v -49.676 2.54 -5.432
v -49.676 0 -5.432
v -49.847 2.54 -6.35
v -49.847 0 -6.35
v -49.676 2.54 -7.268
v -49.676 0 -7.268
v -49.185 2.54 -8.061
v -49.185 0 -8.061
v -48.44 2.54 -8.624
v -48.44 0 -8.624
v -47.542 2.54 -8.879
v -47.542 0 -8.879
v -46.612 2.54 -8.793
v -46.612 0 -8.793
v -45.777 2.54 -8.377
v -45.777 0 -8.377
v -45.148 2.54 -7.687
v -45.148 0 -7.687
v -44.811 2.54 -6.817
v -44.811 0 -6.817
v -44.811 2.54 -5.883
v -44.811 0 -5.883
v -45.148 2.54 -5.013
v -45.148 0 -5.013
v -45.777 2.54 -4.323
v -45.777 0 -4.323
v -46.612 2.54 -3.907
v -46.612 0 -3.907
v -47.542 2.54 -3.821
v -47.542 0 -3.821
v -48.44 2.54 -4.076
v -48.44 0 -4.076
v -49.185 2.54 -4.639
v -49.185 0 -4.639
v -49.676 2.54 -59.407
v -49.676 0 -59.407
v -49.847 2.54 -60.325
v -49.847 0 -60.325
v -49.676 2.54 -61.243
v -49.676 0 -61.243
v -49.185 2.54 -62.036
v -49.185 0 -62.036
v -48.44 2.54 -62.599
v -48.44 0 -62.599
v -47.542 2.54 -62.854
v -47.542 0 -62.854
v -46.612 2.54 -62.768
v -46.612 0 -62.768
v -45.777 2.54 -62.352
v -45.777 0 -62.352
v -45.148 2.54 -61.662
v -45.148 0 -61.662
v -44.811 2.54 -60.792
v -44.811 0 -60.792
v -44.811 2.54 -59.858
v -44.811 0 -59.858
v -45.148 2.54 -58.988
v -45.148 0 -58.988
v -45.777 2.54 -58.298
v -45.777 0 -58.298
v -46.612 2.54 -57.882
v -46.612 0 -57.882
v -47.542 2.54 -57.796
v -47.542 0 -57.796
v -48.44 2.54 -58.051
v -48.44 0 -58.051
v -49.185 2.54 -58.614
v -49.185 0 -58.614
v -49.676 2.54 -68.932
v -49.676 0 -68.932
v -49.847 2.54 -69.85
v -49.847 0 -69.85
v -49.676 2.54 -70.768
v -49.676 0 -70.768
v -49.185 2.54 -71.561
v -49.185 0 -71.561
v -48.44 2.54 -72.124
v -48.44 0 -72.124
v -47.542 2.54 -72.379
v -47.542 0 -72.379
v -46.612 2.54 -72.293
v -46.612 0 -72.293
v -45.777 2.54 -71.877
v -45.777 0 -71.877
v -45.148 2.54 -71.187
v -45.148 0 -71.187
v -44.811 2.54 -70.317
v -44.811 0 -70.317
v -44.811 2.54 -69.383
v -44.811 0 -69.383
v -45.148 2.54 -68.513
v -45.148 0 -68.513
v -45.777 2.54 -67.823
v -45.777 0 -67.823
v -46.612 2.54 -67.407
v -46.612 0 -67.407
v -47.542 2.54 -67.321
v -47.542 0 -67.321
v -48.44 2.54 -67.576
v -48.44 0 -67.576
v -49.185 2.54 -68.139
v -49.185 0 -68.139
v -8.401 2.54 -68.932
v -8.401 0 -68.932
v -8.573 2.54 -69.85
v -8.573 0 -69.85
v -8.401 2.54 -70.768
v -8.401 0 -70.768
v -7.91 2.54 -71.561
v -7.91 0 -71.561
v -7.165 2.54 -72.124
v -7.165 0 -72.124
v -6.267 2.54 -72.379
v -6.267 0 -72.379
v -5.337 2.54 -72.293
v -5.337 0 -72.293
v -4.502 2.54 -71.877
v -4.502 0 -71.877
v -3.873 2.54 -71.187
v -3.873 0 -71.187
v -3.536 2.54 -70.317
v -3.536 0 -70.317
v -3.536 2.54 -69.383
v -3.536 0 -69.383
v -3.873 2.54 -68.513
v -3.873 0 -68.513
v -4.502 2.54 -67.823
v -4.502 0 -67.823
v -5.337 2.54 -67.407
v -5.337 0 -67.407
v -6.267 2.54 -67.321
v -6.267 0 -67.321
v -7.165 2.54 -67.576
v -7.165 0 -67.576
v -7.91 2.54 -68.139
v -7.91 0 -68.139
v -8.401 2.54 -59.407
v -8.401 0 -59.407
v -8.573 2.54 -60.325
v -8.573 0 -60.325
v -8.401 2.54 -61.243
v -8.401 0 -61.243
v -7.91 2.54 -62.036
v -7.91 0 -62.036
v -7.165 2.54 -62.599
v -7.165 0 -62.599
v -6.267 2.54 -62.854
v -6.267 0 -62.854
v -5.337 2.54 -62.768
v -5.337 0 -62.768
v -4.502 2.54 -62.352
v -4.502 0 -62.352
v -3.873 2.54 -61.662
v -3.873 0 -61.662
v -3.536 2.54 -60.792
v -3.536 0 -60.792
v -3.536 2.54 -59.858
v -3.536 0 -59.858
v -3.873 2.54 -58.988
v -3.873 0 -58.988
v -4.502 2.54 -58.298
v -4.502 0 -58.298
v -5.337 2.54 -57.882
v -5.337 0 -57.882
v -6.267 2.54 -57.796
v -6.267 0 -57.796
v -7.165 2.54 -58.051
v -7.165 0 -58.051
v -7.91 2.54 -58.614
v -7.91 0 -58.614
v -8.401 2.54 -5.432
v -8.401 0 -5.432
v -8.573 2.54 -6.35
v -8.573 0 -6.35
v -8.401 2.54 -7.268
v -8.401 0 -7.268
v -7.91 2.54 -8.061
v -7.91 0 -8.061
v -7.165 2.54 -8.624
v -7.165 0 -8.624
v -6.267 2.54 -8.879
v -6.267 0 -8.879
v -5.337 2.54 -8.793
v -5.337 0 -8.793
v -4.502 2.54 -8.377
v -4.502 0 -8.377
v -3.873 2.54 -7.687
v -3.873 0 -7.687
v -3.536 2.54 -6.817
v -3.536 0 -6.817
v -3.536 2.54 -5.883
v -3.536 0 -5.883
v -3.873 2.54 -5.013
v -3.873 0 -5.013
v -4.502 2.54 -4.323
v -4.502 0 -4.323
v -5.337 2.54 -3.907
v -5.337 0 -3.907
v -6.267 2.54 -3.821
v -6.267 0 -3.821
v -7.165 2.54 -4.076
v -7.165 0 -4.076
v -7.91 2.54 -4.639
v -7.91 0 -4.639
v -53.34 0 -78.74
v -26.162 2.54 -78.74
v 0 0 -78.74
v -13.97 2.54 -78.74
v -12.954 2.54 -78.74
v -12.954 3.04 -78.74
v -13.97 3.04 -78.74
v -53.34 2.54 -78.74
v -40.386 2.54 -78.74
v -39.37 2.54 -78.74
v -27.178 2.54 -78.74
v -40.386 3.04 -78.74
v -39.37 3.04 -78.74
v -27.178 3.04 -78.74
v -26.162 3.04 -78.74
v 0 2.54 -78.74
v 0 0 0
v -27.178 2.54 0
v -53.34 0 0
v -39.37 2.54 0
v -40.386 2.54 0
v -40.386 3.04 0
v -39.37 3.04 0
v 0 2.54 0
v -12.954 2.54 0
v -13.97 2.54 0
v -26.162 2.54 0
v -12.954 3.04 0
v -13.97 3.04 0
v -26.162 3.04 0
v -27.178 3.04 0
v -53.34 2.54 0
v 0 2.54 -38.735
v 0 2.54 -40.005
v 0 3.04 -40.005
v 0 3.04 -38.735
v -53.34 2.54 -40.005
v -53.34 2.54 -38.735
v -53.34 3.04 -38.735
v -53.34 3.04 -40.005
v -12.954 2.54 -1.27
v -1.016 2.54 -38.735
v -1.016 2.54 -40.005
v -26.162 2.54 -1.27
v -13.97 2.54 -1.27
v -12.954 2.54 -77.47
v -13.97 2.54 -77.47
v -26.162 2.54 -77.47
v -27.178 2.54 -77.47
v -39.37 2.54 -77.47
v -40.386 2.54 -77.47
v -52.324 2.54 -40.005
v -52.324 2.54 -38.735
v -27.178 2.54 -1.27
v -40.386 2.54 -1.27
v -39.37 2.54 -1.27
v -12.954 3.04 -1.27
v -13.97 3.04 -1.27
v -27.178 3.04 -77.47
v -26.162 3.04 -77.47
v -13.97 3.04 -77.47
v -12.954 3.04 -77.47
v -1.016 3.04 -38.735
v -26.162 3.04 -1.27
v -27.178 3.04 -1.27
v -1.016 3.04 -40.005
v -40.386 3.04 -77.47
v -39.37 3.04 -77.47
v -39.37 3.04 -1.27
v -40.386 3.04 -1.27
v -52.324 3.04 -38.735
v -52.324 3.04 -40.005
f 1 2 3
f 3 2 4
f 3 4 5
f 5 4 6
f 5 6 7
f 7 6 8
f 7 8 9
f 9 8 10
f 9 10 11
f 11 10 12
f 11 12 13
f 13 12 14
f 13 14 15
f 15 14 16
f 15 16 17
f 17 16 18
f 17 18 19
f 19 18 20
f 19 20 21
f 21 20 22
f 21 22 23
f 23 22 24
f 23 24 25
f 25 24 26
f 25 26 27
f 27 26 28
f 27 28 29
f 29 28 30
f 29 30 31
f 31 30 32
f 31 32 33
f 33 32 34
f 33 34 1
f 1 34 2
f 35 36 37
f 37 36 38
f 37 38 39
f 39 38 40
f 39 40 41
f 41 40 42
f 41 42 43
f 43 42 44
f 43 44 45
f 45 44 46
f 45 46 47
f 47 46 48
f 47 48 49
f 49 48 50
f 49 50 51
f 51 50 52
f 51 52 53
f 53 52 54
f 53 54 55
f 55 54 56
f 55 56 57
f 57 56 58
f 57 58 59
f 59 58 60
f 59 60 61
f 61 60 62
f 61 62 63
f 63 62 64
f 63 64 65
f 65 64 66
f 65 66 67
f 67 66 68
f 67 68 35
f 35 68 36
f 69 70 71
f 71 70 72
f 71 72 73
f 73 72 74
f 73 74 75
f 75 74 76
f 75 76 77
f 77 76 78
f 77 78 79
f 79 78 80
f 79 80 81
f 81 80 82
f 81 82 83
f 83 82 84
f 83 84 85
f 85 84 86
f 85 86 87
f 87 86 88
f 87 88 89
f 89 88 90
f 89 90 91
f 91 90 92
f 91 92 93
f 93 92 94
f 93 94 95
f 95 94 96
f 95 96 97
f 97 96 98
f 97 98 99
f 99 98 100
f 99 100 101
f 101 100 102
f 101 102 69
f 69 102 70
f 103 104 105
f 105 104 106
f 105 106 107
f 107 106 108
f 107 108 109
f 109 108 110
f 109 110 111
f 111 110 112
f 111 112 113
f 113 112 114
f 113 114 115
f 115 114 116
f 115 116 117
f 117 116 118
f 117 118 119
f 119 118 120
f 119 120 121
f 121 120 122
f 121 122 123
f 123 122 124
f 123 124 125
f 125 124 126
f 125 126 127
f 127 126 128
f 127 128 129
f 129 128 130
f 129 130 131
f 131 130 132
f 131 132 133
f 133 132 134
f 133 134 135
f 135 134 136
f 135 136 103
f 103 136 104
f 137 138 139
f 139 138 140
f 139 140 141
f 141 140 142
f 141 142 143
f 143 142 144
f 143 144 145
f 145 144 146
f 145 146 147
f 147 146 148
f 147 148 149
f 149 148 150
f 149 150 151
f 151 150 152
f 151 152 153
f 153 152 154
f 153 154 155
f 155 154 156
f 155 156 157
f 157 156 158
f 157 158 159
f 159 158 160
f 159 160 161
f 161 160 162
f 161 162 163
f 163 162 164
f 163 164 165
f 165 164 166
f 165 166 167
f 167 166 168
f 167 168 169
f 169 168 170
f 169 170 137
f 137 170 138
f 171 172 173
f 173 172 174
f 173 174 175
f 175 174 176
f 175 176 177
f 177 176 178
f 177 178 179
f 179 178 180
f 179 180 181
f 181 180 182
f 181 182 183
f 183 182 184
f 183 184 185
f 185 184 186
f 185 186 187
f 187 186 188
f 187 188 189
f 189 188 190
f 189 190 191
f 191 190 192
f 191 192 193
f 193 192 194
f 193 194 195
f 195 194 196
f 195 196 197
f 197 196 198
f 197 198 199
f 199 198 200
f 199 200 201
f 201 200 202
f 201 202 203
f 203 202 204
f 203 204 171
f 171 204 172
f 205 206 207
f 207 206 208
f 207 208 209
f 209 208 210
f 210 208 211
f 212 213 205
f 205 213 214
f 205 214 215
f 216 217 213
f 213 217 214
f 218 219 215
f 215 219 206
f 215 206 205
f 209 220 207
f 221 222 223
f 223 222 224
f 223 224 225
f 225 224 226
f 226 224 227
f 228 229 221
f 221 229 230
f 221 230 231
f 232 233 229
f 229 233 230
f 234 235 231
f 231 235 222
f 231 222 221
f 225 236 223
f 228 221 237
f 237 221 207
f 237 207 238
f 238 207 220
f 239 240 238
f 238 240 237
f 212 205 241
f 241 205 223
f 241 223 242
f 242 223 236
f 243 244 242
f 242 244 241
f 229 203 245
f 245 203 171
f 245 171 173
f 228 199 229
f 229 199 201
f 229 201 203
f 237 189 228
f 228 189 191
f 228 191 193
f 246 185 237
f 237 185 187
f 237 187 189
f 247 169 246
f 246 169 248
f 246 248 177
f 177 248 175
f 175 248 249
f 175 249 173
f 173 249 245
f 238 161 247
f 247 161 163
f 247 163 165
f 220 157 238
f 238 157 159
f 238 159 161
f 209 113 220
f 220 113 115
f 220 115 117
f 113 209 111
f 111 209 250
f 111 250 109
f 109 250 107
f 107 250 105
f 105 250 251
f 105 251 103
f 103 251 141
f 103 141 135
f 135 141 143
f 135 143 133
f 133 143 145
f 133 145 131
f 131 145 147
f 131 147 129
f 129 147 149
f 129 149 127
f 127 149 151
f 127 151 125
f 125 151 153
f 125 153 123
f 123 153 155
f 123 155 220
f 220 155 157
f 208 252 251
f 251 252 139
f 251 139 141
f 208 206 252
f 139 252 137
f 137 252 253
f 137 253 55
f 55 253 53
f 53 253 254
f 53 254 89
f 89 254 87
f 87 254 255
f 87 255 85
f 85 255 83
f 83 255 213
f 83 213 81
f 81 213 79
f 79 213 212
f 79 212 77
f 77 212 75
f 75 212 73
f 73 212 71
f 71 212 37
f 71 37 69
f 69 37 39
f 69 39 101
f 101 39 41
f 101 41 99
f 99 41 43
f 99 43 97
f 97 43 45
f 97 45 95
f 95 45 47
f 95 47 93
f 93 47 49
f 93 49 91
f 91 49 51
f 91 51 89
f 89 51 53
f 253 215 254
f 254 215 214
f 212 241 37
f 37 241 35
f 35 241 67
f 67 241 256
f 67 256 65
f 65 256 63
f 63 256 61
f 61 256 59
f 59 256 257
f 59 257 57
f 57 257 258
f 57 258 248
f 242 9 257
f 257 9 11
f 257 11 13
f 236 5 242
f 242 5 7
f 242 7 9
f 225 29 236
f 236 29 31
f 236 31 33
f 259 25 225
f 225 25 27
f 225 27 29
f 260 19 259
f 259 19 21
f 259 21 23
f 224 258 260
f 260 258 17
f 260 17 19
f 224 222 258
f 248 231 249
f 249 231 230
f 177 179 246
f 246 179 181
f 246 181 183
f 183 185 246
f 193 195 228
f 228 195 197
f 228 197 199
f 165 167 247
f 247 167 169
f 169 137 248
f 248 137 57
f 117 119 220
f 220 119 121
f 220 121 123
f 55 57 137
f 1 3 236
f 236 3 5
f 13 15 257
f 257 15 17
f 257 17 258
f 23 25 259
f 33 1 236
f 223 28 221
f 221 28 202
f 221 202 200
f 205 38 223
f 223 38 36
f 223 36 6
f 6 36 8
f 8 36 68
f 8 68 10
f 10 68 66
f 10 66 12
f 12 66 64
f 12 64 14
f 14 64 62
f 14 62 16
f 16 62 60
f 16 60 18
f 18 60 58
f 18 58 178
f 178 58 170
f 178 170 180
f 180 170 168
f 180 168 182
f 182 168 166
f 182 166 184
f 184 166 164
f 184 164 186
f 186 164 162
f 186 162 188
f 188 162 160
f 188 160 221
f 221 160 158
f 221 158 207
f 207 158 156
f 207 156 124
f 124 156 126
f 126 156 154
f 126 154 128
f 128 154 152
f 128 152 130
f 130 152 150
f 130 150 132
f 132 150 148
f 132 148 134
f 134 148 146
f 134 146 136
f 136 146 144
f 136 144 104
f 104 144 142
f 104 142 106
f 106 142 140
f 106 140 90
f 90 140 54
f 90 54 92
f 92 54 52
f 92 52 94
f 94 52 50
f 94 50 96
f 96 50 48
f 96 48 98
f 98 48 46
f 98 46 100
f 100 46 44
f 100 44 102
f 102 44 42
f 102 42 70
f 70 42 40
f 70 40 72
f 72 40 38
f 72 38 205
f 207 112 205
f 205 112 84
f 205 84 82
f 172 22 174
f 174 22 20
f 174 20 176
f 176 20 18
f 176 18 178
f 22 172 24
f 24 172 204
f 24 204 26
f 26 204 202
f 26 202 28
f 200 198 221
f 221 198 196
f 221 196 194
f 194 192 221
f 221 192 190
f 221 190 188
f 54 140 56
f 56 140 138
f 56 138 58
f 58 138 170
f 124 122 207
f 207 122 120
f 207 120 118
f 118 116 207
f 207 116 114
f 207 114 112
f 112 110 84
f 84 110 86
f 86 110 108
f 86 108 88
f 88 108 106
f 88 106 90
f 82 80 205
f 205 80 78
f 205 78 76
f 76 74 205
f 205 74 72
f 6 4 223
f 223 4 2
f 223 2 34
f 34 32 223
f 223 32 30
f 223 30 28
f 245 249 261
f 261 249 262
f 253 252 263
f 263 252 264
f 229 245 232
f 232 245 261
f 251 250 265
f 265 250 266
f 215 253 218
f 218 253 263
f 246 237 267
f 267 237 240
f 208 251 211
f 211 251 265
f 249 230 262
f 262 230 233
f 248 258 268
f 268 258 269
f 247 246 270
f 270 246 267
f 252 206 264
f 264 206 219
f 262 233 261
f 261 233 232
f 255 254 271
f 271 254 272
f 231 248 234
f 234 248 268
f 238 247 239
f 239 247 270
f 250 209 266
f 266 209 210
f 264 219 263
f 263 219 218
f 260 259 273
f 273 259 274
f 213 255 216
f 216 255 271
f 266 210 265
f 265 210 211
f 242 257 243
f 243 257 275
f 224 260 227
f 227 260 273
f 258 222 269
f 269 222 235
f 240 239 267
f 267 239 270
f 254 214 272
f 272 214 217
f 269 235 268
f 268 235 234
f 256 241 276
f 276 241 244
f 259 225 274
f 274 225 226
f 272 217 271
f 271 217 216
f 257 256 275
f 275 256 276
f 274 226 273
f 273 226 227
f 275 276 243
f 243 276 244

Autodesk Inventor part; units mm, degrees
ref_plane "YZ Plane" through (0, 0, 0) normal (1, 0, 0) x (0, 1, 0)
ref_plane "XZ Plane" through (0, 0, 0) normal (0, 1, 0) x (-1, 0, 0)
ref_plane "XY Plane" through (0, 0, 0) normal (0, 0, 1) x (1, 0, 0)
sketch "Sketch1" plane through (0, 0, 0) normal (0, 1, 0) x (-1, 0, 0)
  line L0 (0, 0) -> (53.34, 0)
  line L1 (53.34, 0) -> (53.34, -78.74)
  line L2 (53.34, -78.74) -> (0, -78.74)
  line L3 (0, -78.74) -> (0, 0)
  circle A0 centre (47.3075, -6.35) radius 2.54
  circle A1 centre (47.3075, -60.325) radius 2.54
  circle A2 centre (47.3075, -69.85) radius 2.54
  circle A3 centre (6.0325, -6.35) radius 2.54
  circle A4 centre (6.0325, -60.325) radius 2.54
  circle A5 centre (6.0325, -69.85) radius 2.54
  line L4 (26.67, 0) -> (26.67, -78.74)
  dimension "d0" = 53.34
  dimension "d1" = 78.74
  dimension "d2" = 5.08
  dimension "d3" = 5.08
  dimension "d4" = 5.08
  dimension "d5" = 53.975
  dimension "d6" = 63.5
  dimension "d9" = 41.275
  dimension "d14" = 20.6375
  dimension "d16" = 6.35
extrude "Extrusion1" add sketch "Sketch1" along normal blind 2.54
sketch "Sketch2" plane through (0, 2.54, 0) normal (0, 1, 0) x (1, 0, 0)
  line L0 (-53.34, 0) -> (0, 0) projected
  line L1 (-53.34, 78.74) -> (-53.34, 0) projected
  line L2 (0, 78.74) -> (-53.34, 78.74) projected
  line L3 (0, 0) -> (0, 78.74) projected
  circle A0 centre (-6.0325, 6.35) radius 2.54 projected
  circle A1 centre (-6.0325, 60.325) radius 2.54 projected
  circle A2 centre (-6.0325, 69.85) radius 2.54 projected
  circle A3 centre (-47.3075, 69.85) radius 2.54 projected
  circle A4 centre (-47.3075, 60.325) radius 2.54 projected
  circle A5 centre (-47.3075, 6.35) radius 2.54 projected
  line L4 (-26.67, 0) -> (-26.67, 78.74)
  line L5 (0, 78.74) -> (-53.34, 78.74) projected
  line L6 (-26.67, 0) -> (-39.37, 0)
  line L7 (-39.37, 0) -> (-39.37, 78.74)
  line L8 (-39.37, 78.74) -> (-26.67, 78.74)
  line L9 (-26.67, 78.74) -> (-26.67, 0)
  line L10 (-26.67, 0) -> (-13.97, 0)
  line L11 (-13.97, 0) -> (-13.97, 78.74)
  line L12 (-13.97, 78.74) -> (-26.67, 78.74)
  line L13 (-26.67, 78.74) -> (-26.67, 0)
  line L14 (-39.37, 0) -> (-40.386, 0)
  line L15 (-40.386, 0) -> (-40.386, 78.74)
  line L16 (-40.386, 78.74) -> (-39.37, 78.74)
  line L17 (-39.37, 78.74) -> (-39.37, 0)
  line L18 (-26.67, 0) -> (-27.178, 0)
  line L19 (-27.178, 0) -> (-27.178, 78.74)
  line L20 (-27.178, 78.74) -> (-26.67, 78.74)
  line L21 (-26.67, 78.74) -> (-26.67, 0)
  line L22 (-53.34, 0) -> (0, 0) projected
  line L23 (-26.67, 78.74) -> (-26.162, 78.74)
  line L24 (-26.162, 78.74) -> (-26.162, 0)
  line L25 (-26.162, 0) -> (-26.67, 0)
  line L26 (-26.67, 0) -> (-26.67, 78.74)
  line L27 (-13.97, 0) -> (-12.954, 0)
  line L28 (-12.954, 0) -> (-12.954, 78.74)
  line L29 (-12.954, 78.74) -> (-13.97, 78.74)
  line L30 (-13.97, 78.74) -> (-13.97, 0)
  line L31 (-40.386, 0) -> (-12.954, 0)
  line L32 (-12.954, 0) -> (-12.954, 1.27)
  line L33 (-12.954, 1.27) -> (-40.386, 1.27)
  line L34 (-40.386, 1.27) -> (-40.386, 0)
  line L35 (-12.954, 78.74) -> (-40.386, 78.74)
  line L36 (-40.386, 78.74) -> (-40.386, 77.47)
  line L37 (-40.386, 77.47) -> (-12.954, 77.47)
  line L38 (-12.954, 77.47) -> (-12.954, 78.74)
  line L39 (-53.34, 39.37) -> (0, 39.37)
  line L40 (0, 0) -> (0, 78.74) projected
  line L41 (-40.386, 39.37) -> (-12.954, 39.37)
  line L42 (-12.954, 39.37) -> (-12.954, 40.005)
  line L43 (-12.954, 40.005) -> (-40.386, 40.005)
  line L44 (-40.386, 40.005) -> (-40.386, 39.37)
  line L45 (-40.386, 39.37) -> (-12.954, 39.37)
  line L46 (-12.954, 39.37) -> (-12.954, 38.735)
  line L47 (-12.954, 38.735) -> (-40.386, 38.735)
  line L48 (-40.386, 38.735) -> (-40.386, 39.37)
  line L49 (-40.386, 38.735) -> (-39.37, 38.735)
  line L50 (-39.37, 38.735) -> (-39.37, 39.37)
  line L51 (-39.37, 39.37) -> (-40.386, 39.37)
  line L52 (-40.386, 39.37) -> (-40.386, 38.735)
  line L53 (-53.34, 78.74) -> (-53.34, 0) projected
  line L54 (-53.34, 0) -> (-52.324, 0)
  line L55 (-52.324, 0) -> (-52.324, 78.74)
  line L56 (-52.324, 78.74) -> (-53.34, 78.74)
  line L57 (-53.34, 78.74) -> (-53.34, 0)
  line L58 (0, 0) -> (-1.016, 0)
  line L59 (-1.016, 0) -> (-1.016, 78.74)
  line L60 (-1.016, 78.74) -> (0, 78.74)
  line L61 (0, 78.74) -> (0, 0)
  line L62 (-40.386, 39.37) -> (-53.34, 39.37)
  line L63 (-53.34, 39.37) -> (-53.34, 38.735)
  line L64 (-53.34, 38.735) -> (-40.386, 38.735)
  line L65 (-40.386, 38.735) -> (-40.386, 39.37)
  line L66 (-40.386, 39.37) -> (-53.34, 39.37)
  line L67 (-53.34, 39.37) -> (-53.34, 40.005)
  line L68 (-53.34, 40.005) -> (-40.386, 40.005)
  line L69 (-40.386, 40.005) -> (-40.386, 39.37)
  line L70 (-12.954, 39.37) -> (0, 39.37)
  line L71 (0, 39.37) -> (0, 38.735)
  line L72 (0, 38.735) -> (-12.954, 38.735)
  line L73 (-12.954, 38.735) -> (-12.954, 39.37)
  line L74 (-12.954, 39.37) -> (0, 39.37)
  line L75 (0, 39.37) -> (0, 40.005)
  line L76 (0, 40.005) -> (-12.954, 40.005)
  line L77 (-12.954, 40.005) -> (-12.954, 39.37)
  line L78 (-53.34, 38.735) -> (-52.324, 38.735)
  line L79 (-52.324, 38.735) -> (-52.324, 39.37)
  line L80 (-52.324, 39.37) -> (-53.34, 39.37)
  line L81 (-53.34, 39.37) -> (-53.34, 38.735)
  point P0 (-13.97, 38.735)
  point P1 (-13.97, 40.005)
  point P2 (-27.178, 38.735)
  point P3 (-26.162, 38.735)
  point P4 (-26.162, 40.005)
  point P5 (-27.178, 40.005)
  point P6 (-13.97, 1.27)
  point P7 (-27.178, 1.27)
  point P8 (-26.162, 1.27)
  point P9 (-39.37, 1.27)
  point P10 (-13.97, 77.47)
  point P11 (-27.178, 77.47)
  point P12 (-26.162, 77.47)
  point P13 (-39.37, 77.47)
  point P14 (-39.37, 38.735)
  point P15 (-39.37, 40.005)
  point P16 (-1.016, 38.735)
  point P17 (-1.016, 40.005)
  point P18 (-52.324, 38.735)
  point P19 (-52.324, 40.005)
  dimension "d19" = 12.7
  dimension "d20" = 12.7
  dimension "d22" = 0.508
  dimension "d23" = 0.508
  dimension "d24" = 1.016
  dimension "d25" = 1.016
  dimension "d26" = 1.27
  dimension "d27" = 1.27
  dimension "d28" = 0.635
  dimension "d29" = 0.635
  dimension "d32" = 1.016
  dimension "d33" = 1.016
extrude "Extrusion3" add sketch "Sketch2" along normal blind 0.5 contours L1 L39 L55 L64 | L15 L33 L7 L0 | L1 L68 L55 L39 | L19 L33 L4 L0 | L4 L33 L24 L0 | L15 L2 L7 L37 | L11 L33 L28 L0 | L19 L2 L4 L37 | L4 L2 L24 L37 | L59 L39 L3 L72 | L59 L76 L3 L39 | L11 L2 L28 L37
properties part number "trucks"
